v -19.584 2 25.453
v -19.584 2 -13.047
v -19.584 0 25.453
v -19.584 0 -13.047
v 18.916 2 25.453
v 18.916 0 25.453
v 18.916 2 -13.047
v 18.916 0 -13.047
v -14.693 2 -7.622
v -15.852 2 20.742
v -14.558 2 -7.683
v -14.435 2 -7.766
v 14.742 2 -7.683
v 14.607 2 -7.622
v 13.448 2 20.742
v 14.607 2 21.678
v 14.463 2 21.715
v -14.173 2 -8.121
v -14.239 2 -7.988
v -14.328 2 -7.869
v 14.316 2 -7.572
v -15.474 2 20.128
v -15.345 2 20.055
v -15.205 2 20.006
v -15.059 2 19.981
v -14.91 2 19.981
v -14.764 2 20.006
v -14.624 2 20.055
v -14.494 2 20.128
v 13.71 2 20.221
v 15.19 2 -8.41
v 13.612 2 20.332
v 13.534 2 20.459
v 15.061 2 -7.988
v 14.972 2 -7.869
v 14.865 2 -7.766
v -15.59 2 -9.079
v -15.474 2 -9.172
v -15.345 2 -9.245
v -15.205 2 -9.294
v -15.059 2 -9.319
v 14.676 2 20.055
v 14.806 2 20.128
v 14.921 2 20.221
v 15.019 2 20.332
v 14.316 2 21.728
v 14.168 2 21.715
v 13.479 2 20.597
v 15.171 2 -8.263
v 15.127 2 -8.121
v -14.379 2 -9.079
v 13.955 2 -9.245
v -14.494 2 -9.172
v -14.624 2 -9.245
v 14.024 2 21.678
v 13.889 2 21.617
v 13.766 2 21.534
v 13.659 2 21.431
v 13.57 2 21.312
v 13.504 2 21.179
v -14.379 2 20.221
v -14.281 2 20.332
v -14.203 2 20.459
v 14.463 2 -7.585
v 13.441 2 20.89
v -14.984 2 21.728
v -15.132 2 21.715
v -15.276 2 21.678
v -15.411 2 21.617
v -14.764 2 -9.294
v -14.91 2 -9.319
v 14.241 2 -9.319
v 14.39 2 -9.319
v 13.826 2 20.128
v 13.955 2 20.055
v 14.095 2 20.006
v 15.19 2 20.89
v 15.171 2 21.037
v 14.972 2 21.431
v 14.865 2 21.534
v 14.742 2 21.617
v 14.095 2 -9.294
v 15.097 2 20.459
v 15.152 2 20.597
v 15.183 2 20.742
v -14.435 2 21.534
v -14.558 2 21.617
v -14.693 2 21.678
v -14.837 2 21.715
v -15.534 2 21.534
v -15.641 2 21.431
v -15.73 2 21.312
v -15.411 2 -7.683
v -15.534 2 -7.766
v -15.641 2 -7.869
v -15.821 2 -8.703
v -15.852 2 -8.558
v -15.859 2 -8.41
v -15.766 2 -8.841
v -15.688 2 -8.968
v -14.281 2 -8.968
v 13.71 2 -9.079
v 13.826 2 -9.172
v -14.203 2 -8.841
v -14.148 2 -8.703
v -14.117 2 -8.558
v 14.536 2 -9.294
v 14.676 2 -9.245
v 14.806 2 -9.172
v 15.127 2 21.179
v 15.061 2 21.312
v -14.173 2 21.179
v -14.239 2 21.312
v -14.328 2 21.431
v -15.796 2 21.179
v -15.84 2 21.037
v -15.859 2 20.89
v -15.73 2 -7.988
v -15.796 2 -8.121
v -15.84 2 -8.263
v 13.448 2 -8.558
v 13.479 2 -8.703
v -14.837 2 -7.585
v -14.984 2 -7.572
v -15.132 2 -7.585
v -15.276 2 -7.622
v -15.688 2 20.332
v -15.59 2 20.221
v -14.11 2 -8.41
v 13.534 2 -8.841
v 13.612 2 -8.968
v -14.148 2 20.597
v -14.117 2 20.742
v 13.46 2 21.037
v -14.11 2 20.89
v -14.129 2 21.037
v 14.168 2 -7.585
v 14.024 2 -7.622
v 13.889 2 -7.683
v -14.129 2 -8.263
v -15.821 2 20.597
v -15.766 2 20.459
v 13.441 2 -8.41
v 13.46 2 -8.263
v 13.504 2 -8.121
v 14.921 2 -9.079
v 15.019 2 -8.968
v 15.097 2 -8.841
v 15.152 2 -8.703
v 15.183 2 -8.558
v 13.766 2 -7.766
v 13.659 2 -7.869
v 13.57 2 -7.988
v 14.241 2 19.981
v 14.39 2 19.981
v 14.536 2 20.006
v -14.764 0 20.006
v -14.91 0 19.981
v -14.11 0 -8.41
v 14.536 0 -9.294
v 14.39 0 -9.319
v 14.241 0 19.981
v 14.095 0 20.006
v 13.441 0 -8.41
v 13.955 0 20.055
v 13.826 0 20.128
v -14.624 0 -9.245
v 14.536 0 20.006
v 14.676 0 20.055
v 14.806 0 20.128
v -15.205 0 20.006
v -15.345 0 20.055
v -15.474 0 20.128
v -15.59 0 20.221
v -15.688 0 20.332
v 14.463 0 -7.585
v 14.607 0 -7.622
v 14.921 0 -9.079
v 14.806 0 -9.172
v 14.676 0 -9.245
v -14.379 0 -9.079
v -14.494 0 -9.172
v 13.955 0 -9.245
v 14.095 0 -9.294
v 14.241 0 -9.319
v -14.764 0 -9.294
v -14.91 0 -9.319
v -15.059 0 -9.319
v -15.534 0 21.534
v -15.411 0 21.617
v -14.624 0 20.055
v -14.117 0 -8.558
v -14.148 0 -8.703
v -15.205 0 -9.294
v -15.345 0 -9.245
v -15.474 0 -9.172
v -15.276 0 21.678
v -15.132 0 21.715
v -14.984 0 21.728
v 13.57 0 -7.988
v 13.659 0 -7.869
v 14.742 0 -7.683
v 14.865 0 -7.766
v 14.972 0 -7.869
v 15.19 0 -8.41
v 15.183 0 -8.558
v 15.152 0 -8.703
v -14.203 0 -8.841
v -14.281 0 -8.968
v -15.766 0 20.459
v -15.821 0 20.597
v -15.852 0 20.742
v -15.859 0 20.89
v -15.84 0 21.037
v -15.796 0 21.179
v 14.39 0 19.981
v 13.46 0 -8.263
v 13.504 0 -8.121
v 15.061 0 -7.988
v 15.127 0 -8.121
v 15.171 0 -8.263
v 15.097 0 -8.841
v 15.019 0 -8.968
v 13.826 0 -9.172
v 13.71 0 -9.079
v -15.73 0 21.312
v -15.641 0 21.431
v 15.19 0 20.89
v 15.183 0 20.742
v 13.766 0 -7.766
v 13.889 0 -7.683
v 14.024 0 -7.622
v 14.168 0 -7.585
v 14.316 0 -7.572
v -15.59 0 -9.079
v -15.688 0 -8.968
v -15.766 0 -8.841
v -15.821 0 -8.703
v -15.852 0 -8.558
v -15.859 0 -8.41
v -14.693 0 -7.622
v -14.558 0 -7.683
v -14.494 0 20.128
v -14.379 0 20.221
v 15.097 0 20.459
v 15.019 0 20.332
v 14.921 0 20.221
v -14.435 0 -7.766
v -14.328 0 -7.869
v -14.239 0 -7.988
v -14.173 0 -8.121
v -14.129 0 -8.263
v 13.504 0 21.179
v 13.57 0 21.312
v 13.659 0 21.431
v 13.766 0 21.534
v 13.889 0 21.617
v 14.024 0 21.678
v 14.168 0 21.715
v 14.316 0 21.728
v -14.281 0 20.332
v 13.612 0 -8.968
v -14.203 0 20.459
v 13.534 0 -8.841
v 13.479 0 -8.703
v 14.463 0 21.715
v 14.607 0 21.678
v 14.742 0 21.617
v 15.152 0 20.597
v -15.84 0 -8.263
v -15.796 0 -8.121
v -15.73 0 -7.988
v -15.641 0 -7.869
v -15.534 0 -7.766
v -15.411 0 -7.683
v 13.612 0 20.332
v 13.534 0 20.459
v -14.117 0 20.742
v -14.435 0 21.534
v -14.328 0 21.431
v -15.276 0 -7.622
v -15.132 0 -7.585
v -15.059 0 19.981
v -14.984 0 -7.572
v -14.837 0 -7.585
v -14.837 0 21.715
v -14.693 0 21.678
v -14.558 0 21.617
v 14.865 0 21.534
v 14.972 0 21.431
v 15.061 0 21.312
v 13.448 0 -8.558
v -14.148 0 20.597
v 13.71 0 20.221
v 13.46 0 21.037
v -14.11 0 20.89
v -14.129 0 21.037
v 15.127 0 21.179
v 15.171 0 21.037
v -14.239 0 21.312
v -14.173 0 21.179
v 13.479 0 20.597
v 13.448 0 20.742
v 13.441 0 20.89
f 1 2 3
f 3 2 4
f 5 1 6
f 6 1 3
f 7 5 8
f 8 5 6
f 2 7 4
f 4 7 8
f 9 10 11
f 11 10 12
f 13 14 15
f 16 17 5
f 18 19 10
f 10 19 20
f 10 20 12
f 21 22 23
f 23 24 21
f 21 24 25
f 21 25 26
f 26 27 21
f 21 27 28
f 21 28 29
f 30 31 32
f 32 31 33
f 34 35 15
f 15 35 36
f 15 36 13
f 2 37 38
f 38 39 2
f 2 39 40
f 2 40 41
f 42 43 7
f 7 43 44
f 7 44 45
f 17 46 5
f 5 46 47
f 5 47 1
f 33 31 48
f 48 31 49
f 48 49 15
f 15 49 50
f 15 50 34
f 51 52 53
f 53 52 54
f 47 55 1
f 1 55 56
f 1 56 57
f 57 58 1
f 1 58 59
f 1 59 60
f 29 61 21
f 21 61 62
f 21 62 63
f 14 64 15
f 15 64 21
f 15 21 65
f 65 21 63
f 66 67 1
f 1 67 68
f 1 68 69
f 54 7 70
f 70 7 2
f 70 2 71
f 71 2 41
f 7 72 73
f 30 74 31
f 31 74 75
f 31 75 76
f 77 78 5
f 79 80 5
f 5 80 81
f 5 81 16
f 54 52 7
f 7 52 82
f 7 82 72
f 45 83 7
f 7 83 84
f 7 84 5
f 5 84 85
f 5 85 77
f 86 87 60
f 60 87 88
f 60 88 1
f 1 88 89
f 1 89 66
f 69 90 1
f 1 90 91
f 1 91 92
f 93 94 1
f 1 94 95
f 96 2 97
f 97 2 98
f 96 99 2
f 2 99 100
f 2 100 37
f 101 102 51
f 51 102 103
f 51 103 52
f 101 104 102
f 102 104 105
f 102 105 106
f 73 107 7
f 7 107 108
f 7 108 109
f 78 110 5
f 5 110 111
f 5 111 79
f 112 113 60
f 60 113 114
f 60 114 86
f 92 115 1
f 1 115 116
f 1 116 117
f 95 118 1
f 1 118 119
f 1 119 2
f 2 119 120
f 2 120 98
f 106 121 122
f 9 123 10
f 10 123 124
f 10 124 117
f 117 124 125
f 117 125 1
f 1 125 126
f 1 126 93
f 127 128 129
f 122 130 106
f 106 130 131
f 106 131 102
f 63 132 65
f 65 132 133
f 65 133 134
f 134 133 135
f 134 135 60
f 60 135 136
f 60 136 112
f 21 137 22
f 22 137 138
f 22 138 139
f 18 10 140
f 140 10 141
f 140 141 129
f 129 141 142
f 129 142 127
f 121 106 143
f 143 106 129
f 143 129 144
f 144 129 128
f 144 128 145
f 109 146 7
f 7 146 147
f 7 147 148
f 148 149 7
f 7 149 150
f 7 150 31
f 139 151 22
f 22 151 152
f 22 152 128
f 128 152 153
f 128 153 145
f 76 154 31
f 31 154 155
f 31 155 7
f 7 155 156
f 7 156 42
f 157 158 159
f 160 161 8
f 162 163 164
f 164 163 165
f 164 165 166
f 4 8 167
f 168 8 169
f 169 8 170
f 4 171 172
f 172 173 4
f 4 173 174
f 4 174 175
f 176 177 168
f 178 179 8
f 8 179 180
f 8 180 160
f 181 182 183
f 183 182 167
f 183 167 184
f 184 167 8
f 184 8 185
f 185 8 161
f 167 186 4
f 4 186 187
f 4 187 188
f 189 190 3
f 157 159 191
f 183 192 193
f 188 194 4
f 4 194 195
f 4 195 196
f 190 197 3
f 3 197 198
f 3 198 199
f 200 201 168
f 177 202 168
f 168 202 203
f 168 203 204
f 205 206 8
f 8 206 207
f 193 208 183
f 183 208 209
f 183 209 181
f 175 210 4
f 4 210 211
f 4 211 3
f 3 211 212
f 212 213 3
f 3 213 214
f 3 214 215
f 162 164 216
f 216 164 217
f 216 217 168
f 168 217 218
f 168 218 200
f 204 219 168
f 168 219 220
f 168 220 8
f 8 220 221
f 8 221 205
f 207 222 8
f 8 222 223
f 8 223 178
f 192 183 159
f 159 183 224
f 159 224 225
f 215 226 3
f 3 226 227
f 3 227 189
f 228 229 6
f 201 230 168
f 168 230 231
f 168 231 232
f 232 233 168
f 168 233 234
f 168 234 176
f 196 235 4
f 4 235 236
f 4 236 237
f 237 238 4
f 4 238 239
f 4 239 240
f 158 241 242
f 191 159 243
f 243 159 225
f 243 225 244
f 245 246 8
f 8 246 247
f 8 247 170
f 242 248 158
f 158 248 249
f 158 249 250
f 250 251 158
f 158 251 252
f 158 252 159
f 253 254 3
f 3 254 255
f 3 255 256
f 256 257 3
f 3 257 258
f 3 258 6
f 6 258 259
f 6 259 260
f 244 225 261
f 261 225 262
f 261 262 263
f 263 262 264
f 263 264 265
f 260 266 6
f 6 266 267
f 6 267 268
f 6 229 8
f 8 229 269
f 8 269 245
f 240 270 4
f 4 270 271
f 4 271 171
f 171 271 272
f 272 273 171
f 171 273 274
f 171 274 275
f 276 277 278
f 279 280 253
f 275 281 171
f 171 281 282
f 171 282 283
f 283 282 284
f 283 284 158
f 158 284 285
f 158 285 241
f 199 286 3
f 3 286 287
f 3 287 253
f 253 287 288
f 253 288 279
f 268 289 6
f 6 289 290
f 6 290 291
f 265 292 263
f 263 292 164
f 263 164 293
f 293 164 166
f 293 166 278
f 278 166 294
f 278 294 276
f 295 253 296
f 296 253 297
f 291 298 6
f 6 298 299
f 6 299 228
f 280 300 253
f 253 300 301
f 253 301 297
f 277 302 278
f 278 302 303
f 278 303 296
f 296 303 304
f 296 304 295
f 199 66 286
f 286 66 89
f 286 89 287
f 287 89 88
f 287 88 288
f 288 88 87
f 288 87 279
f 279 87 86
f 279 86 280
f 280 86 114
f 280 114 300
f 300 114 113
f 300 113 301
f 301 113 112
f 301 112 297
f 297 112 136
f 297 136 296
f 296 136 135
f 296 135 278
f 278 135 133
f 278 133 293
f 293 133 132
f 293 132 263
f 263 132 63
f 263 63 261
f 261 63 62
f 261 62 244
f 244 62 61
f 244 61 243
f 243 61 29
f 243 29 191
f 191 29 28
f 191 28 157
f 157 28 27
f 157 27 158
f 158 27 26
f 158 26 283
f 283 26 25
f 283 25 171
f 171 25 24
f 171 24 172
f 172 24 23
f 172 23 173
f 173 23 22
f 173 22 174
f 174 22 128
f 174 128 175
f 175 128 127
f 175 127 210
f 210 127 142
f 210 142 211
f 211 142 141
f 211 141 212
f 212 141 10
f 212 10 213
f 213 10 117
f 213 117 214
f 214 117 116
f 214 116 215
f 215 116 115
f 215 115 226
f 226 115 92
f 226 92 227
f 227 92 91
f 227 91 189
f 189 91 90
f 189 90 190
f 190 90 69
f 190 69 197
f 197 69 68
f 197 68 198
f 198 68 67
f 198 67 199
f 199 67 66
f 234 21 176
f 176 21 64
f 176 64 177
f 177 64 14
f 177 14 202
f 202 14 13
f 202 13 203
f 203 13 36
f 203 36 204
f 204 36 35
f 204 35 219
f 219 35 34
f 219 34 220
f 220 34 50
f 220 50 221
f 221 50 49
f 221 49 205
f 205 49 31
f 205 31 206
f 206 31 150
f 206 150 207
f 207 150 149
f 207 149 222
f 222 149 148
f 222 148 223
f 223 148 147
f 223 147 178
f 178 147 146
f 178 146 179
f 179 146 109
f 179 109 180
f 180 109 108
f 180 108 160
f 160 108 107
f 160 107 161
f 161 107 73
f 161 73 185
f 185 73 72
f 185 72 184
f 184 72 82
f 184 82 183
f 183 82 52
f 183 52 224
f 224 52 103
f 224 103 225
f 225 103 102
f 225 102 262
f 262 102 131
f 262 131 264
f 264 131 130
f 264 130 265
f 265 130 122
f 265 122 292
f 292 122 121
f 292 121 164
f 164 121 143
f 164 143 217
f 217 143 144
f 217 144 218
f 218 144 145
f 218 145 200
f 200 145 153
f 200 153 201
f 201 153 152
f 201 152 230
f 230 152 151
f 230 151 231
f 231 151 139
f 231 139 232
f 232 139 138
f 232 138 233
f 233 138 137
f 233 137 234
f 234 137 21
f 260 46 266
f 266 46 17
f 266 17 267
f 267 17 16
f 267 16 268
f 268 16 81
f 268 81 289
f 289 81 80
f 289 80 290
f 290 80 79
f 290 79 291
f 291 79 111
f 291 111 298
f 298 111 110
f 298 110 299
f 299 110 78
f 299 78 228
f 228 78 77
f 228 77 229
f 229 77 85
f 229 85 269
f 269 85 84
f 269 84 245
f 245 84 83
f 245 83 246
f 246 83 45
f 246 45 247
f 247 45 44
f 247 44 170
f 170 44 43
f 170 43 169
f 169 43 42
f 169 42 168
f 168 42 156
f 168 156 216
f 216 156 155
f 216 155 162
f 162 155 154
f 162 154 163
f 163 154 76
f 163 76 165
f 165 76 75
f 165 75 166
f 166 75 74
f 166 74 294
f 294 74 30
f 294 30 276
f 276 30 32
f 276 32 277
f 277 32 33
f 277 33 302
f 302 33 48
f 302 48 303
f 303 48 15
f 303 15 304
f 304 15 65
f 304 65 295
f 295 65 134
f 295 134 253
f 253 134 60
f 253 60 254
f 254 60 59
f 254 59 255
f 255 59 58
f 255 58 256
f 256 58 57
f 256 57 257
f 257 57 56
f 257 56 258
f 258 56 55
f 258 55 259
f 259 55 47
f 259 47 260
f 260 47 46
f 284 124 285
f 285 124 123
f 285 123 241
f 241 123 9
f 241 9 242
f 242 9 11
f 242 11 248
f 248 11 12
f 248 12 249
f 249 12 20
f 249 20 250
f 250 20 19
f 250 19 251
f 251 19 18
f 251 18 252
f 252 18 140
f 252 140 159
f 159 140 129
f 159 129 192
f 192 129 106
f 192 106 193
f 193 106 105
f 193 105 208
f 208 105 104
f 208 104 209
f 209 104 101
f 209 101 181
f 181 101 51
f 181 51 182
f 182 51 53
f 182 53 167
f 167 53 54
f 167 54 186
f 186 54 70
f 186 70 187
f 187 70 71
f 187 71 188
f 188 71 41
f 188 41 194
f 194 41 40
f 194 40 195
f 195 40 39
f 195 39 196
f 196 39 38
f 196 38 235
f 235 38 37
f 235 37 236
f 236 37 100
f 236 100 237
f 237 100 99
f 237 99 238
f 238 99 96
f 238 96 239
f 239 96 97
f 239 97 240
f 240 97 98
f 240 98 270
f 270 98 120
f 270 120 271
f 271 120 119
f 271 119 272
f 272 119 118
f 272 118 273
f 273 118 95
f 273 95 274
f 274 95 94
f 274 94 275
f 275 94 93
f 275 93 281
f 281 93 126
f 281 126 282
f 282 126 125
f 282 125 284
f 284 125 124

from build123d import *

# Parameters (mm, degrees)
SKETCH1_W                = 38.5
SKETCH1_H                = 38.5
BOSS_EXTRUDE1_DEPTH      = 2
M2_2X0_45_TAPPED_HOLE1_D = 1.75


with BuildPart() as part:
    # Sketch1 → Boss-Extrude1 (new body)
    with BuildSketch(Plane(origin=(0, 0, 0), x_dir=(1, 0, 0), z_dir=(0, 1, 0))):
        with Locations((-0.334475449, -6.202777778)):
            Rectangle(SKETCH1_W, SKETCH1_H)
    extrude(amount=BOSS_EXTRUDE1_DEPTH)

    # M2.2x0.45 Tapped Hole1 (through all)
    with Locations(Plane(origin=(-14.984475449, 2, -8.447222222), x_dir=(0, 0, 1), z_dir=(0, 1, 0))):
        with Locations((0, 0), (29.3, 29.3), (0, 29.3), (29.3, 0)):
            Hole(M2_2X0_45_TAPPED_HOLE1_D / 2)


solid = part.part
